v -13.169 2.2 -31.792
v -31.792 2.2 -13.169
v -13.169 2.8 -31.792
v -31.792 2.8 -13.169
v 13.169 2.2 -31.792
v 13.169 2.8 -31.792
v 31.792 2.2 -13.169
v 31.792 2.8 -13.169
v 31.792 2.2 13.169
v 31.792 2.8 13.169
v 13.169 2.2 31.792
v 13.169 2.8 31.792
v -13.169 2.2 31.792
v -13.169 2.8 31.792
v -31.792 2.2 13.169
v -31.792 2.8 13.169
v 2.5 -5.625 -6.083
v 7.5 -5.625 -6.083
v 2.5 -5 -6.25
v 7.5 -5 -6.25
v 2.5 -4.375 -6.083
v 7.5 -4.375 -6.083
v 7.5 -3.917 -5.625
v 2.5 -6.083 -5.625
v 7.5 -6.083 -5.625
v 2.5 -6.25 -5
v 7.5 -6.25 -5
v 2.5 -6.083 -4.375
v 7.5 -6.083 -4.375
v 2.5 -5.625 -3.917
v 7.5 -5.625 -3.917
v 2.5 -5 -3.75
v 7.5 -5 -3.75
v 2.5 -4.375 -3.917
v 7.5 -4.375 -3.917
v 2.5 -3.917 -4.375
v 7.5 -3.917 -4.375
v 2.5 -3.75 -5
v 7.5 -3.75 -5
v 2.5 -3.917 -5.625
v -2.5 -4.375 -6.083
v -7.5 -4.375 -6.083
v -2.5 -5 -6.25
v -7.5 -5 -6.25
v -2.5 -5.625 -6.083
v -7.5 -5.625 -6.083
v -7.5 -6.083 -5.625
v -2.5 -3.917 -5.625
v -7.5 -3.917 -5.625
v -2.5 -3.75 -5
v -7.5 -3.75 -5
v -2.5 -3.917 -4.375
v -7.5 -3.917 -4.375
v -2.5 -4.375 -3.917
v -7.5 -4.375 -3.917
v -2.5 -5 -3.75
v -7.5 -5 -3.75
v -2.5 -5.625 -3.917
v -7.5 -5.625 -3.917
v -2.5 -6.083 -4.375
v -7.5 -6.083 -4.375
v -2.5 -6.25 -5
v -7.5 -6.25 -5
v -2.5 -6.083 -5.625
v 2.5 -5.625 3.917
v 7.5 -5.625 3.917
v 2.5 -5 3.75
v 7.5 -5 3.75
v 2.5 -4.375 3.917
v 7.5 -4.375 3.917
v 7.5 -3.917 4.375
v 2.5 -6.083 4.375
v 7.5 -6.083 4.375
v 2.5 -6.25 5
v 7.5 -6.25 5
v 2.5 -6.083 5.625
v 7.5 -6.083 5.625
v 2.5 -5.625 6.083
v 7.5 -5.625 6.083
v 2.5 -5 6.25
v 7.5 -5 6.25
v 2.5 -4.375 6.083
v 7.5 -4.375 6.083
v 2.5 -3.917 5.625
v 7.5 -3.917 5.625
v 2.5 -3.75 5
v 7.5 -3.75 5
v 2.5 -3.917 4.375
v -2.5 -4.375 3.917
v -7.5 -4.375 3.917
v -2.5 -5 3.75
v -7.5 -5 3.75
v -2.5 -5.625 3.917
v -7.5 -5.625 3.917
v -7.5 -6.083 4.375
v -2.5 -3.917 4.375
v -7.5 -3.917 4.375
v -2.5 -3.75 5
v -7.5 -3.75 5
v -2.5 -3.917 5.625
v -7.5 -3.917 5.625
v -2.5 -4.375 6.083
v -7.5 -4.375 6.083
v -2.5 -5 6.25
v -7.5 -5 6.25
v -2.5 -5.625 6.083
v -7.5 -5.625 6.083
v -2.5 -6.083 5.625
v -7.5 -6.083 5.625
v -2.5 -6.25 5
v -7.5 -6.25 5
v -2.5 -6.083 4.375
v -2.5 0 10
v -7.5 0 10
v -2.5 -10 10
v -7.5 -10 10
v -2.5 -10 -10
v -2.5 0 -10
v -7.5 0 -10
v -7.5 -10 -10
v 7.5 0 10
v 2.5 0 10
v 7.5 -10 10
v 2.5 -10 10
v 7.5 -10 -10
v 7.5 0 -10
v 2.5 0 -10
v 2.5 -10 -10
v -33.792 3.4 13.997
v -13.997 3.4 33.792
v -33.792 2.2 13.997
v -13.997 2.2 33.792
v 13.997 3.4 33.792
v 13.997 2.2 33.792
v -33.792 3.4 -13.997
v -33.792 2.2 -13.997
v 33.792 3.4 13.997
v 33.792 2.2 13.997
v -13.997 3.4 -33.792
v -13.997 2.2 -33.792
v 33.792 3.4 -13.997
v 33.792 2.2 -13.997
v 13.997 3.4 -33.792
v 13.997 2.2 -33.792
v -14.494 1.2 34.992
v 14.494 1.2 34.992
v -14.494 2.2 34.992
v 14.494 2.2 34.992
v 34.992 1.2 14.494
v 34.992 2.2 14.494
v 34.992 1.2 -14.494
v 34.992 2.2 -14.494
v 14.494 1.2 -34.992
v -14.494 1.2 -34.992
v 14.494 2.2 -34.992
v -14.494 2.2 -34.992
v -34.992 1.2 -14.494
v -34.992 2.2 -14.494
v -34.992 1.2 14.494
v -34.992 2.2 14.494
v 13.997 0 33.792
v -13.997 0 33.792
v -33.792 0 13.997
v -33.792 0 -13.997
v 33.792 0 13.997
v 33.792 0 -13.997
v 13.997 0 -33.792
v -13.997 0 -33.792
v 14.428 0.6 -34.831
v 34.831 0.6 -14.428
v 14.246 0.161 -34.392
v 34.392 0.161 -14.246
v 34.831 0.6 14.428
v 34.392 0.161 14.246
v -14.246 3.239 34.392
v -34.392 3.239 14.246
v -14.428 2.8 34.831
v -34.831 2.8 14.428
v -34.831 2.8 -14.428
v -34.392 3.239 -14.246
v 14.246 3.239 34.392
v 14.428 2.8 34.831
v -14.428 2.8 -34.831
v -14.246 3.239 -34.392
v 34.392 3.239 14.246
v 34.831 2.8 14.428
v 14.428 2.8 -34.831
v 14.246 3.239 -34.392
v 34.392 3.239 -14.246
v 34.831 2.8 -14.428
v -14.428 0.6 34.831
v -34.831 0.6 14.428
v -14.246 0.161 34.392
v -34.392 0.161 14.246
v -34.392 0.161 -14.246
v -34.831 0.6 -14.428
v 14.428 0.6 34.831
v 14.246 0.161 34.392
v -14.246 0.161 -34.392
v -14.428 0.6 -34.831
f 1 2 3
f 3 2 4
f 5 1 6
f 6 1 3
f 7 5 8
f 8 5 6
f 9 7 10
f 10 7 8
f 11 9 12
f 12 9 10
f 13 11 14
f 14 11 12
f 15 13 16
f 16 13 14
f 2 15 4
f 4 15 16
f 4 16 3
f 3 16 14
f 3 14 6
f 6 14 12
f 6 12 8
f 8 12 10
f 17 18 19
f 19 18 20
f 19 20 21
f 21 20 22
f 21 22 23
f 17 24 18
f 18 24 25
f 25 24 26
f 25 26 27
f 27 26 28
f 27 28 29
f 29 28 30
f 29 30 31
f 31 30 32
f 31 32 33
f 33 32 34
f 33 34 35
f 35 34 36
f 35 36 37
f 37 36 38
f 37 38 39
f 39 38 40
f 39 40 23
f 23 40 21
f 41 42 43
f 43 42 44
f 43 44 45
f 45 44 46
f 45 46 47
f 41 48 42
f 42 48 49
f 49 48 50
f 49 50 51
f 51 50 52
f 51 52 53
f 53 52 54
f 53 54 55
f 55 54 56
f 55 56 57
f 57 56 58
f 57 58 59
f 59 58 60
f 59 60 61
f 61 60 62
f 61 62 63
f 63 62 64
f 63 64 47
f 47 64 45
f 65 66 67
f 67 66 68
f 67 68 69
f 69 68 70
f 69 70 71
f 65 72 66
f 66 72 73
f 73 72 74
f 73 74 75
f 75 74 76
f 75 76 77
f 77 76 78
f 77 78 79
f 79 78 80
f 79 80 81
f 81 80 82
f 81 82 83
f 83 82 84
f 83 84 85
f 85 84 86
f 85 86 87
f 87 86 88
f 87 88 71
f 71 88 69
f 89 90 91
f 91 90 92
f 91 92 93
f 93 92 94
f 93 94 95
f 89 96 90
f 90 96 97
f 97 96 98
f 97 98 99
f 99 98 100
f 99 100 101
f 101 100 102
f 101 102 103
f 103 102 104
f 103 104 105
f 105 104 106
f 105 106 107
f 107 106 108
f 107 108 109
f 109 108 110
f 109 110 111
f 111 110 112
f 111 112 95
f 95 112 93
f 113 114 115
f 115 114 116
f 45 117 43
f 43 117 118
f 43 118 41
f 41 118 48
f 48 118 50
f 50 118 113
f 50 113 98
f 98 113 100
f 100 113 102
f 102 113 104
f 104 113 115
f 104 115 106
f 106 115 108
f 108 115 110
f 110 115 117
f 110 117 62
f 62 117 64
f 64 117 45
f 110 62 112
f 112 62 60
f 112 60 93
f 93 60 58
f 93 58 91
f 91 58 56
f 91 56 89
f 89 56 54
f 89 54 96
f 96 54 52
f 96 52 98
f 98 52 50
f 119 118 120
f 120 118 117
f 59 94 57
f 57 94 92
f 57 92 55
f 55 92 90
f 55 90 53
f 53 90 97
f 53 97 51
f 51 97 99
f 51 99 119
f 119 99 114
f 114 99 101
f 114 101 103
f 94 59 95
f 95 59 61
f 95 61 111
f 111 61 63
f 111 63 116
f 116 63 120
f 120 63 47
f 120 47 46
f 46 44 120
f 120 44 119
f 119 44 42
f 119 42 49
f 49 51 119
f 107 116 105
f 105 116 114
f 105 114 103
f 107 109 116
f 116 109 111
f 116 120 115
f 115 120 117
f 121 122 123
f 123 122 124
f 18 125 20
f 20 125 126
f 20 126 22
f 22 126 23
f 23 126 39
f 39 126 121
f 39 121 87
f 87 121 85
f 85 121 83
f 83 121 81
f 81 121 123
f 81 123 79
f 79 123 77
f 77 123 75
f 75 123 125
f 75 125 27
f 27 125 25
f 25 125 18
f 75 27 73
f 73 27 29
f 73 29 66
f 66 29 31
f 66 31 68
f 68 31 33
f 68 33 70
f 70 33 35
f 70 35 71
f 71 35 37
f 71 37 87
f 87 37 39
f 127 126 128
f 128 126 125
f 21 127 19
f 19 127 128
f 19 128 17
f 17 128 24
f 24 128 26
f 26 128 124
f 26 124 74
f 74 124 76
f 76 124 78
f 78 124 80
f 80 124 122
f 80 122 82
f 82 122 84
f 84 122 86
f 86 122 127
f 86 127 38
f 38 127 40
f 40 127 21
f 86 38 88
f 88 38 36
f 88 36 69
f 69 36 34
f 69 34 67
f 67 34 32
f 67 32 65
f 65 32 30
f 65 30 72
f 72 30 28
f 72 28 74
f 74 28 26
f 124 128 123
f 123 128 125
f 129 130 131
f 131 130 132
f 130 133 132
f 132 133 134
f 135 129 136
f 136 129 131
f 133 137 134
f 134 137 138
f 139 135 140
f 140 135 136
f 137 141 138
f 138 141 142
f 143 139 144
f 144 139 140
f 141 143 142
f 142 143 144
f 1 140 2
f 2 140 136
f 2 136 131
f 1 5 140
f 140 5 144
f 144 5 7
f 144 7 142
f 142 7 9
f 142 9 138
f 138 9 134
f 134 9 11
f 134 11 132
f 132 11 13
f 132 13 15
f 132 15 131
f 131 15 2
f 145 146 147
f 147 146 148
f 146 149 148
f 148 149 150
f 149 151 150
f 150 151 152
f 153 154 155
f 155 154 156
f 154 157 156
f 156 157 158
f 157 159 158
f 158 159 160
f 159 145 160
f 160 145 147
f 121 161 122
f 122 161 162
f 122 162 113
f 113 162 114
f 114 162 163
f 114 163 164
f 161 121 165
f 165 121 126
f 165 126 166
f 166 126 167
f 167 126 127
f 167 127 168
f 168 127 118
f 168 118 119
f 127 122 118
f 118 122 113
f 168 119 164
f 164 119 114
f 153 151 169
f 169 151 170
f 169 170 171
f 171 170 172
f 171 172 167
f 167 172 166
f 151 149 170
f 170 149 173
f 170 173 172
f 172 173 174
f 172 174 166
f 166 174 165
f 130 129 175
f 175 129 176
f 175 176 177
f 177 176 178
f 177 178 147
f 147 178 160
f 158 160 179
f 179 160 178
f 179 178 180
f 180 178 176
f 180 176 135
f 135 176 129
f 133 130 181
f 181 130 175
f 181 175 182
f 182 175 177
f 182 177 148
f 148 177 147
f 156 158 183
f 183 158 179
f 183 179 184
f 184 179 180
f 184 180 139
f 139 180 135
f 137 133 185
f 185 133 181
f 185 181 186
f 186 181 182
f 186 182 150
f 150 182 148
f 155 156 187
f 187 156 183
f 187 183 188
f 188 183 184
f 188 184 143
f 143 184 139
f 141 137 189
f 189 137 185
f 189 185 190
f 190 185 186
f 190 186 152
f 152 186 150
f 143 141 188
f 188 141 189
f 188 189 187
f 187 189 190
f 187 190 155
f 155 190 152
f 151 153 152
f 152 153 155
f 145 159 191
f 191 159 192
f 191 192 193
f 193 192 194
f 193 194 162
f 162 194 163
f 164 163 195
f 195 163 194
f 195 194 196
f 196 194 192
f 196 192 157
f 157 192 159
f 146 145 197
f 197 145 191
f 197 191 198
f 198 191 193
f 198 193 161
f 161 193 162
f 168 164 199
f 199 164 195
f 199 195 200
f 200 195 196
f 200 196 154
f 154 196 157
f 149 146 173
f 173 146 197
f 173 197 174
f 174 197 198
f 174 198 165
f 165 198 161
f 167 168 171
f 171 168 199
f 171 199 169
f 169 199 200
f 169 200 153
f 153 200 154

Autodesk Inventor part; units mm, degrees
ref_plane "YZ Plane" through (0, 0, 0) normal (1, 0, 0) x (0, 1, 0)
ref_plane "XZ Plane" through (0, 0, 0) normal (0, 1, 0) x (-1, 0, 0)
ref_plane "XY Plane" through (0, 0, 0) normal (0, 0, 1) x (1, 0, 0)
sketch "스케치3" plane through (0, 0, 0) normal (0, 1, 0) x (-1, 0, 0)
  line L0 (34.9919, -14.4941) -> (14.4941, -34.9919)
  line L1 (14.4941, -34.9919) -> (-14.4941, -34.9919)
  line L2 (-14.4941, -34.9919) -> (-34.9919, -14.4941)
  line L3 (-34.9919, -14.4941) -> (-34.9919, 14.4941)
  line L4 (-34.9919, 14.4941) -> (-14.4941, 34.9919)
  line L5 (-14.4941, 34.9919) -> (14.4941, 34.9919)
  line L6 (14.4941, 34.9919) -> (34.9919, 14.4941)
  line L7 (34.9919, 14.4941) -> (34.9919, -14.4941)
  line L8 (13.5, -32.5919) -> (-13.5, -32.5919)
  line L9 (-13.5, -32.5919) -> (-32.5919, -13.5)
  line L10 (-32.5919, -13.5) -> (-32.5919, 13.5)
  line L11 (-32.5919, 13.5) -> (-13.5, 32.5919)
  line L12 (-13.5, 32.5919) -> (13.5, 32.5919)
  line L13 (13.5, 32.5919) -> (32.5919, 13.5)
  line L14 (32.5919, 13.5) -> (32.5919, -13.5)
  line L15 (32.5919, -13.5) -> (13.5, -32.5919)
  point P0 (0, 0)
  point P1 (0, 0)
  point P2 (0, 0)
  point P3 (0, 0)
  dimension "d66" = 27
  dimension "d67" = 2.4
extrude "돌출2" add sketch "스케치3" along normal blind 3.4 contours L0 L1 L2 L3 L4 L5 L6 L7 | L8 L9 L10 L11 L12 L13 L14 L15
sketch "스케치4" plane through (0, 3.4, 0) normal (0, 1, 0) x (1, 0, 0)
  line L0 (13.5, -32.5919) -> (-13.5, -32.5919)
  line L1 (-13.5, -32.5919) -> (-32.5919, -13.5)
  line L2 (-32.5919, -13.5) -> (-32.5919, 13.5)
  line L3 (-32.5919, 13.5) -> (-13.5, 32.5919)
  line L4 (-13.5, 32.5919) -> (13.5, 32.5919)
  line L5 (13.5, 32.5919) -> (32.5919, 13.5)
  line L6 (32.5919, 13.5) -> (32.5919, -13.5)
  line L7 (32.5919, -13.5) -> (13.5, -32.5919)
  line L8 (-13.9971, 33.7919) -> (13.9971, 33.7919)
  line L9 (13.9971, 33.7919) -> (33.7919, 13.9971)
  line L10 (33.7919, 13.9971) -> (33.7919, -13.9971)
  line L11 (33.7919, -13.9971) -> (13.9971, -33.7919)
  line L12 (13.9971, -33.7919) -> (-13.9971, -33.7919)
  line L13 (-13.9971, -33.7919) -> (-33.7919, -13.9971)
  line L14 (-33.7919, -13.9971) -> (-33.7919, 13.9971)
  line L15 (-33.7919, 13.9971) -> (-13.9971, 33.7919)
  line L16 (-13.1686, 31.7919) -> (13.1686, 31.7919)
  line L17 (13.1686, 31.7919) -> (31.7919, 13.1686)
  line L18 (31.7919, 13.1686) -> (31.7919, -13.1686)
  line L19 (31.7919, -13.1686) -> (13.1686, -31.7919)
  line L20 (13.1686, -31.7919) -> (-13.1686, -31.7919)
  line L21 (-13.1686, -31.7919) -> (-31.7919, -13.1686)
  line L22 (-31.7919, -13.1686) -> (-31.7919, 13.1686)
  line L23 (-31.7919, 13.1686) -> (-13.1686, 31.7919)
  point P0 (0, 0)
  point P1 (0, 0)
  point P2 (0, 0)
  point P3 (0, 0)
  dimension "d7" = 27
  dimension "d68" = 1.2
  dimension "d69" = 0.8
extrude "돌출3" cut sketch "스케치4" against normal blind 1.2 contours L0 L1 L2 L3 L4 L5 L6 L7 | L8 L9 L10 L11 L12 L13 L14 L15 | L16 L17 L18 L19 L20 L21 L22 L23
sketch "스케치9" plane through (0, 0, 0) normal (0, -1, 0) x (1, 0, 0)
  line L0 (7.5, 10) -> (2.5, 10)
  line L1 (2.5, 10) -> (2.5, -10)
  line L2 (2.5, -10) -> (7.5, -10)
  line L3 (7.5, -10) -> (7.5, 10)
  line L4 (7.5, 10) -> (2.5, -10) construction
  line L5 (2.5, 10) -> (7.5, -10) construction
  line L6 (-2.5, 10) -> (-7.5, 10)
  line L7 (-7.5, 10) -> (-7.5, -10)
  line L8 (-7.5, -10) -> (-2.5, -10)
  line L9 (-2.5, 10) -> (-7.5, -10) construction
  line L10 (-7.5, 10) -> (-2.5, -10) construction
  line L11 (-2.5, -10) -> (-2.5, 10)
  point P0 (0, 0)
  point P1 (5, 0)
  point P2 (-5, 0)
  dimension "d42" = 20
  dimension "d43" = 5
  dimension "d44" = 2.5
  dimension "d47" = 10
extrude "돌출8" add sketch "스케치9" along normal blind 10
sketch "스케치10" plane through (-7.5, 0, -10) normal (-1, 0, 0) x (0, 0, 1)
  circle A0 centre (15, -5) radius 1.25
  line L0 (19.9591, 0) -> (0.0886, 0)
  line L1 (24.4941, 0) -> (-4.4941, 0) projected
  circle A1 centre (5, -5) radius 1.25
  line L2 (20, 0) -> (20, -10) projected
  point P0 (10, 0)
  dimension "d54" = 2.5
  dimension "d57" = 10
  dimension "d62" = 5
  dimension "d63" = 5
extrude "돌출9" cut sketch "스케치10" against normal blind 20
sketch "스케치11" plane through (0, 2.2, 0) normal (0, 1, 0) x (1, 0, 0)
  line L0 (-13.1686, 31.7919) -> (13.1686, 31.7919)
  line L1 (13.1686, 31.7919) -> (31.7919, 13.1686)
  line L2 (31.7919, 13.1686) -> (31.7919, -13.1686)
  line L3 (31.7919, -13.1686) -> (13.1686, -31.7919)
  line L4 (13.1686, -31.7919) -> (-13.1686, -31.7919)
  line L5 (-13.1686, -31.7919) -> (-31.7919, -13.1686)
  line L6 (-31.7919, -13.1686) -> (-31.7919, 13.1686)
  line L7 (-31.7919, 13.1686) -> (-13.1686, 31.7919)
  line L8 (-13.9971, 33.7919) -> (13.9971, 33.7919) projected
  line L9 (-11.926, 28.7919) -> (11.926, 28.7919)
  line L10 (11.926, 28.7919) -> (28.7919, 11.926)
  line L11 (28.7919, 11.926) -> (28.7919, -11.926)
  line L12 (28.7919, -11.926) -> (11.926, -28.7919)
  line L13 (11.926, -28.7919) -> (-11.926, -28.7919)
  line L14 (-11.926, -28.7919) -> (-28.7919, -11.926)
  line L15 (-28.7919, -11.926) -> (-28.7919, 11.926)
  line L16 (-28.7919, 11.926) -> (-11.926, 28.7919)
  point P0 (0, 0)
  point P1 (0, 0)
  point P2 (0, 0)
  dimension "d70" = 2
  dimension "d71" = 3
extrude "돌출10" add sketch "스케치11" along normal blind 0.6 contours L0 L1 L2 L3 L4 L5 L6 L7 | L9 L10 L11 L12 L13 L14 L15 L16
fillet "모깎기1" radius 1.2 16 edges at (-24.743, 3.4, 24.743) (0, 3.4, 34.9919) (24.743, 3.4, 24.743) (34.9919, 3.4, 0) (24.743, 3.4, -24.743) (0, 3.4, -34.9919) (-24.743, 3.4, -24.743) (-34.9919, 3.4, 0) (-24.743, 0, 24.743) (0, 0, 34.9919) (24.743, 0, 24.743) (34.9919, 0, 0) (24.743, 0, -24.743) (0, 0, -34.9919) (-24.743, 0, -24.743) (-34.9919, 0, 0)
properties part number "OV-PAM_bottom_2"
